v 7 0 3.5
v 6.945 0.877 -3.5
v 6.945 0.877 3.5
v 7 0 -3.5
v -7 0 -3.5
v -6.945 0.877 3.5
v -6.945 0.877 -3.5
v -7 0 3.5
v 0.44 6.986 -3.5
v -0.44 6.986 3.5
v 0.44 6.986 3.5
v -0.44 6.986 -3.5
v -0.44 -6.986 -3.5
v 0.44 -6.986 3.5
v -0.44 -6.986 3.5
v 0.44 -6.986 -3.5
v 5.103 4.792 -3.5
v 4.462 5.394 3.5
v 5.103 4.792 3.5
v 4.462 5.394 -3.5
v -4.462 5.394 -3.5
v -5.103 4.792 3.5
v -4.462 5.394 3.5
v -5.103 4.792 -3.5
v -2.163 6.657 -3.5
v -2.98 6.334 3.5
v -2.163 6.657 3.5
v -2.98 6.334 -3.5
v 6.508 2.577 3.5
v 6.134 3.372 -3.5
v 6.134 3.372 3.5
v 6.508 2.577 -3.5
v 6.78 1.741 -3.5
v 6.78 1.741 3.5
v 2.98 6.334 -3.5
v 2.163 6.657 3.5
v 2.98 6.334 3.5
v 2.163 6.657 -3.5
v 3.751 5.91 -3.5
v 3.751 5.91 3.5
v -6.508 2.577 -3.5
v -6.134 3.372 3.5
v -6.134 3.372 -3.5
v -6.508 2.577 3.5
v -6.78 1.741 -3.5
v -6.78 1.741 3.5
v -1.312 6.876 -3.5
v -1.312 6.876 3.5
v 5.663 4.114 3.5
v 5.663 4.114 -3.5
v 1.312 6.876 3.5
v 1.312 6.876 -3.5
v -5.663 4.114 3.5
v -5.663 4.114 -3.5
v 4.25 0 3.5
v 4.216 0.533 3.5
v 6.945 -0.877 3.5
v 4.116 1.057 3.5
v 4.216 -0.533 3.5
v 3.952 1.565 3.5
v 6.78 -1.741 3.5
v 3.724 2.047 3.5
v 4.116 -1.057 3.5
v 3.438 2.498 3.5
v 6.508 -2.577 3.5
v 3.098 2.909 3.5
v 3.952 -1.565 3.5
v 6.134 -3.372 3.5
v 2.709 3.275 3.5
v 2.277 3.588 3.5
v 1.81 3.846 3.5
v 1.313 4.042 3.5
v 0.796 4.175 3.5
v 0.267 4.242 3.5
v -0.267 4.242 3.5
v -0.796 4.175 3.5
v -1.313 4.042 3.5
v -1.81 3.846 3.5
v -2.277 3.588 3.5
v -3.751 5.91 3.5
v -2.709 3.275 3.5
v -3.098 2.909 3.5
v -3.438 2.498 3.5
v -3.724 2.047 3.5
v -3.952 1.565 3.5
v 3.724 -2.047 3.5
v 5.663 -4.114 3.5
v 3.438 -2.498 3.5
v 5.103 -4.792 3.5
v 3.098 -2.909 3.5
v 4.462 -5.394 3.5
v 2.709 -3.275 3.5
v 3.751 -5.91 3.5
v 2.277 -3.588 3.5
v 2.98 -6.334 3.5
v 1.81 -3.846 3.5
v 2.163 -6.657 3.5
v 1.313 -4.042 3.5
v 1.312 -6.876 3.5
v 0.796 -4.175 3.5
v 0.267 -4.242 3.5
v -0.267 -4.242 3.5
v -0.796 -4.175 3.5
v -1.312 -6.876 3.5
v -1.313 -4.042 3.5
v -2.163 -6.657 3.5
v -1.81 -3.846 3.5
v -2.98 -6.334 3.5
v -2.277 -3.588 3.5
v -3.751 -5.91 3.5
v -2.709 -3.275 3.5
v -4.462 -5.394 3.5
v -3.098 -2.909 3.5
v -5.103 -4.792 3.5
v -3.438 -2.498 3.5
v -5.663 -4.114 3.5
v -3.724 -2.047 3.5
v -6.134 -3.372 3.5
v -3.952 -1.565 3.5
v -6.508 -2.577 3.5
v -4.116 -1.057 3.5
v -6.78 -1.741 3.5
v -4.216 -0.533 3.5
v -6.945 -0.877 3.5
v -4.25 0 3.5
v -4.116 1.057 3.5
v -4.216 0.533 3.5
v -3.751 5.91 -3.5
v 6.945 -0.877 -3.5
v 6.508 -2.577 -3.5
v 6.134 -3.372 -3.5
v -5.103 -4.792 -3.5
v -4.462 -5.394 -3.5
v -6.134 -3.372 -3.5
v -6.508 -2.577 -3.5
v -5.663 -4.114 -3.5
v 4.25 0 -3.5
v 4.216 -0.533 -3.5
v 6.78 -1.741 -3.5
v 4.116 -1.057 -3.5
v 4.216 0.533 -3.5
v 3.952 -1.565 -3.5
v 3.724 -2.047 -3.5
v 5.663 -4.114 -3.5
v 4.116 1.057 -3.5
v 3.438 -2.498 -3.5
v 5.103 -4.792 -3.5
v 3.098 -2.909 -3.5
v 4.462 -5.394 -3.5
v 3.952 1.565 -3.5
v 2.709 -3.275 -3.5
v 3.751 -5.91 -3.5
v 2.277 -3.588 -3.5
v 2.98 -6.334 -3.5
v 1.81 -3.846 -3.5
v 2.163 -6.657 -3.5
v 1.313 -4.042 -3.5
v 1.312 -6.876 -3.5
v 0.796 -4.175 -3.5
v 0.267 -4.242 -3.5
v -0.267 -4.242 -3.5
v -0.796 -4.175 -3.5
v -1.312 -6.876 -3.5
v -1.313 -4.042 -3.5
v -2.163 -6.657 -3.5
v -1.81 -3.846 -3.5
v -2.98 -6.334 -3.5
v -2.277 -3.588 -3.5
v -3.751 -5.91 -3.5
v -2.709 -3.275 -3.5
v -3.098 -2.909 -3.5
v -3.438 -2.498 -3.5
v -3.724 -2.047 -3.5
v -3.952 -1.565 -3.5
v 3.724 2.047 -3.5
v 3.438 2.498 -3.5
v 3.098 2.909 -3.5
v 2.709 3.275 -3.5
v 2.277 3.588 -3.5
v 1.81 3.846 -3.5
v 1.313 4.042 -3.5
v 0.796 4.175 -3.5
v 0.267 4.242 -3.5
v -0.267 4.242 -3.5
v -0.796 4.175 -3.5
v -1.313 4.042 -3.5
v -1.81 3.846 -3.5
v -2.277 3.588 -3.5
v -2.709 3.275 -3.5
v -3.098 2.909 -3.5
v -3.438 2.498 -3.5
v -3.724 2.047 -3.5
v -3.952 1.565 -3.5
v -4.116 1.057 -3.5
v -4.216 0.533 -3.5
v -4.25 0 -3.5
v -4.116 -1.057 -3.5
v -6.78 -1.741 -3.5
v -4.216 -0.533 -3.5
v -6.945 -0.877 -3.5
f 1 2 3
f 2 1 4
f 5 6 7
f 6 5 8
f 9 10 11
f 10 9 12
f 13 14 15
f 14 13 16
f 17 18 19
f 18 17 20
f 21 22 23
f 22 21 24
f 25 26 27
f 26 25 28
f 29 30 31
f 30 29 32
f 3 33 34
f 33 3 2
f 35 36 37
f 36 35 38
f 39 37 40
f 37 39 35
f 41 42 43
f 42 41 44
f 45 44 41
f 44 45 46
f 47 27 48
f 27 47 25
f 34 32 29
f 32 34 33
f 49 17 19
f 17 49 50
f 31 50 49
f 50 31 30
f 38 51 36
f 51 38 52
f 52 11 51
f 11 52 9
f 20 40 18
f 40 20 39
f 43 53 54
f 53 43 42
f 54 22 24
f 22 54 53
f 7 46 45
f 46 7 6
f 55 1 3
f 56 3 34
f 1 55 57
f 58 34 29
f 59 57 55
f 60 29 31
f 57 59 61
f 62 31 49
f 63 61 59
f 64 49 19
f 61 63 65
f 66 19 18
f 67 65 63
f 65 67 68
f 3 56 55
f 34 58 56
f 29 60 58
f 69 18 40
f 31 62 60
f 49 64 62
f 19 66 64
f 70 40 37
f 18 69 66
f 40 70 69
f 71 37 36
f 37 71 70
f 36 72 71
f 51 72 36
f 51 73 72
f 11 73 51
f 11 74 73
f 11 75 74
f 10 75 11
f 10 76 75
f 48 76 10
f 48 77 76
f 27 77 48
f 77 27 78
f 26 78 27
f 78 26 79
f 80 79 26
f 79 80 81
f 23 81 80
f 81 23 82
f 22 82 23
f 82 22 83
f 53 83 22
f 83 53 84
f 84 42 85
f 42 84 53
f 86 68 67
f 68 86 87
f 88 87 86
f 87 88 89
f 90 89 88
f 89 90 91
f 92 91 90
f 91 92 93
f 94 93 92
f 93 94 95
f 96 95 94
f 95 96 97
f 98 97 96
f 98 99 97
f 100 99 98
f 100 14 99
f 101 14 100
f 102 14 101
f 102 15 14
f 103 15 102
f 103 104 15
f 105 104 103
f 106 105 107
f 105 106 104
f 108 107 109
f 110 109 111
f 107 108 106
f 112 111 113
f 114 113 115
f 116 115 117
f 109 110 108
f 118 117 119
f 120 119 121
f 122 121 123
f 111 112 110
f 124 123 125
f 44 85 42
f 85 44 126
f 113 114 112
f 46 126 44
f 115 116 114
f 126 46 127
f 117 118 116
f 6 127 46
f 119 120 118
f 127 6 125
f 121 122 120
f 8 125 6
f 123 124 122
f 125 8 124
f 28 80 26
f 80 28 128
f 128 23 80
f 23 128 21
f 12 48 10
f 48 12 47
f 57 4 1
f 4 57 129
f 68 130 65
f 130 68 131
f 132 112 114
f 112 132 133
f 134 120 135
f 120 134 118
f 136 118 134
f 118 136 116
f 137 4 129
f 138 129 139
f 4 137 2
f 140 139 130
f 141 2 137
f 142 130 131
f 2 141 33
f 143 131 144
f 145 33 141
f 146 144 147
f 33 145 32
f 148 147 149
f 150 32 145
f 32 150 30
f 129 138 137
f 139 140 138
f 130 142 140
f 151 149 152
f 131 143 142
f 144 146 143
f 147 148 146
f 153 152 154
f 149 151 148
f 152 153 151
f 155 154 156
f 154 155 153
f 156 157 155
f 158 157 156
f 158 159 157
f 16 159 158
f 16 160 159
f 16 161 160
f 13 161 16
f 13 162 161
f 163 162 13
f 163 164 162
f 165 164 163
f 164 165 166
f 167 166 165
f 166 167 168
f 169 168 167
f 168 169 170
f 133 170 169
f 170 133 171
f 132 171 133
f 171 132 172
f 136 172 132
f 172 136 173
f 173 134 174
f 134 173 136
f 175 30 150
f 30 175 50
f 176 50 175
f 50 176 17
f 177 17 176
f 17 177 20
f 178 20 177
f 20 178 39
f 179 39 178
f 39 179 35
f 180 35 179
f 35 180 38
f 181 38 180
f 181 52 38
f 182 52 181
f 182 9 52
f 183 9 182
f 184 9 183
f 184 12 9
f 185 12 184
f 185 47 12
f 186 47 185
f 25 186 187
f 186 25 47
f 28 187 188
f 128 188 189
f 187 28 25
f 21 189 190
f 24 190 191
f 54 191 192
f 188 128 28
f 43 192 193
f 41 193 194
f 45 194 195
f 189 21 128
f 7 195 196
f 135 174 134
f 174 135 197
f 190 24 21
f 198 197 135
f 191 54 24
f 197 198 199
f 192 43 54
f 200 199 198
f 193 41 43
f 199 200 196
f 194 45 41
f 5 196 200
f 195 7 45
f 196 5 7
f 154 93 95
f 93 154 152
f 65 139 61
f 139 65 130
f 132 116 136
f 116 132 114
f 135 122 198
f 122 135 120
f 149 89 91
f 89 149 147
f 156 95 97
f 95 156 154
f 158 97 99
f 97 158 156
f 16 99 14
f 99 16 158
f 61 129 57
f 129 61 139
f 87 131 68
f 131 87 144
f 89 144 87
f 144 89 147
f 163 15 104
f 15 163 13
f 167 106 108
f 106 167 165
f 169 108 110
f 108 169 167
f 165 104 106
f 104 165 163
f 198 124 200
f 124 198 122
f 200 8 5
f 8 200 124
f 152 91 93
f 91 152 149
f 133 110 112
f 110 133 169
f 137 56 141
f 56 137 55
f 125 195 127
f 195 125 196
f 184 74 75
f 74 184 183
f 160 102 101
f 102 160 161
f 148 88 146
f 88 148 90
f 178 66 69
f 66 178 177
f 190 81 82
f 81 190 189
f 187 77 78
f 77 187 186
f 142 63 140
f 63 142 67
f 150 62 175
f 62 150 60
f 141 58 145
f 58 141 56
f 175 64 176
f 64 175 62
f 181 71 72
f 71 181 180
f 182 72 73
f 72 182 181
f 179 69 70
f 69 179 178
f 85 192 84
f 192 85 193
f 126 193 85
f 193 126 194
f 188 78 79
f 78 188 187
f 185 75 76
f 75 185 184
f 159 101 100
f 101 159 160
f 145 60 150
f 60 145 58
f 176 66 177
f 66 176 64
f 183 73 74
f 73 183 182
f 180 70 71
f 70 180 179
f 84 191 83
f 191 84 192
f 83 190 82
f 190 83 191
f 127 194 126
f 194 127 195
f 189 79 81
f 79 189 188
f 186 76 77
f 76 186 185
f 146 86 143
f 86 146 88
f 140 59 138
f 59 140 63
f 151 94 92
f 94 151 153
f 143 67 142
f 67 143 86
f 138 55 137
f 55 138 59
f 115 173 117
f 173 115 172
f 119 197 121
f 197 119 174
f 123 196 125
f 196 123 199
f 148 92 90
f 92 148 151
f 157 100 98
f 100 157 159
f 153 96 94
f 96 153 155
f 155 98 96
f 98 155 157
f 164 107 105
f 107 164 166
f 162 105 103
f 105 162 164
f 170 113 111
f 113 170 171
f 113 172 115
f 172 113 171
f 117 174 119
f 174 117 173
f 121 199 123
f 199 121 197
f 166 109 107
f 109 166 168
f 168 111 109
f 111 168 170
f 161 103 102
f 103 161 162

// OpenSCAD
$fn = 50;


difference() {
	union() {
		translate(v = [0, 0, -3.5000000000]) {
			cylinder(h = 7, r = 7.0000000000);
		}
	}
	union() {
		translate(v = [0, 0, -100.0000000000]) {
			cylinder(h = 200, r = 4.2500000000);
		}
	}
}
